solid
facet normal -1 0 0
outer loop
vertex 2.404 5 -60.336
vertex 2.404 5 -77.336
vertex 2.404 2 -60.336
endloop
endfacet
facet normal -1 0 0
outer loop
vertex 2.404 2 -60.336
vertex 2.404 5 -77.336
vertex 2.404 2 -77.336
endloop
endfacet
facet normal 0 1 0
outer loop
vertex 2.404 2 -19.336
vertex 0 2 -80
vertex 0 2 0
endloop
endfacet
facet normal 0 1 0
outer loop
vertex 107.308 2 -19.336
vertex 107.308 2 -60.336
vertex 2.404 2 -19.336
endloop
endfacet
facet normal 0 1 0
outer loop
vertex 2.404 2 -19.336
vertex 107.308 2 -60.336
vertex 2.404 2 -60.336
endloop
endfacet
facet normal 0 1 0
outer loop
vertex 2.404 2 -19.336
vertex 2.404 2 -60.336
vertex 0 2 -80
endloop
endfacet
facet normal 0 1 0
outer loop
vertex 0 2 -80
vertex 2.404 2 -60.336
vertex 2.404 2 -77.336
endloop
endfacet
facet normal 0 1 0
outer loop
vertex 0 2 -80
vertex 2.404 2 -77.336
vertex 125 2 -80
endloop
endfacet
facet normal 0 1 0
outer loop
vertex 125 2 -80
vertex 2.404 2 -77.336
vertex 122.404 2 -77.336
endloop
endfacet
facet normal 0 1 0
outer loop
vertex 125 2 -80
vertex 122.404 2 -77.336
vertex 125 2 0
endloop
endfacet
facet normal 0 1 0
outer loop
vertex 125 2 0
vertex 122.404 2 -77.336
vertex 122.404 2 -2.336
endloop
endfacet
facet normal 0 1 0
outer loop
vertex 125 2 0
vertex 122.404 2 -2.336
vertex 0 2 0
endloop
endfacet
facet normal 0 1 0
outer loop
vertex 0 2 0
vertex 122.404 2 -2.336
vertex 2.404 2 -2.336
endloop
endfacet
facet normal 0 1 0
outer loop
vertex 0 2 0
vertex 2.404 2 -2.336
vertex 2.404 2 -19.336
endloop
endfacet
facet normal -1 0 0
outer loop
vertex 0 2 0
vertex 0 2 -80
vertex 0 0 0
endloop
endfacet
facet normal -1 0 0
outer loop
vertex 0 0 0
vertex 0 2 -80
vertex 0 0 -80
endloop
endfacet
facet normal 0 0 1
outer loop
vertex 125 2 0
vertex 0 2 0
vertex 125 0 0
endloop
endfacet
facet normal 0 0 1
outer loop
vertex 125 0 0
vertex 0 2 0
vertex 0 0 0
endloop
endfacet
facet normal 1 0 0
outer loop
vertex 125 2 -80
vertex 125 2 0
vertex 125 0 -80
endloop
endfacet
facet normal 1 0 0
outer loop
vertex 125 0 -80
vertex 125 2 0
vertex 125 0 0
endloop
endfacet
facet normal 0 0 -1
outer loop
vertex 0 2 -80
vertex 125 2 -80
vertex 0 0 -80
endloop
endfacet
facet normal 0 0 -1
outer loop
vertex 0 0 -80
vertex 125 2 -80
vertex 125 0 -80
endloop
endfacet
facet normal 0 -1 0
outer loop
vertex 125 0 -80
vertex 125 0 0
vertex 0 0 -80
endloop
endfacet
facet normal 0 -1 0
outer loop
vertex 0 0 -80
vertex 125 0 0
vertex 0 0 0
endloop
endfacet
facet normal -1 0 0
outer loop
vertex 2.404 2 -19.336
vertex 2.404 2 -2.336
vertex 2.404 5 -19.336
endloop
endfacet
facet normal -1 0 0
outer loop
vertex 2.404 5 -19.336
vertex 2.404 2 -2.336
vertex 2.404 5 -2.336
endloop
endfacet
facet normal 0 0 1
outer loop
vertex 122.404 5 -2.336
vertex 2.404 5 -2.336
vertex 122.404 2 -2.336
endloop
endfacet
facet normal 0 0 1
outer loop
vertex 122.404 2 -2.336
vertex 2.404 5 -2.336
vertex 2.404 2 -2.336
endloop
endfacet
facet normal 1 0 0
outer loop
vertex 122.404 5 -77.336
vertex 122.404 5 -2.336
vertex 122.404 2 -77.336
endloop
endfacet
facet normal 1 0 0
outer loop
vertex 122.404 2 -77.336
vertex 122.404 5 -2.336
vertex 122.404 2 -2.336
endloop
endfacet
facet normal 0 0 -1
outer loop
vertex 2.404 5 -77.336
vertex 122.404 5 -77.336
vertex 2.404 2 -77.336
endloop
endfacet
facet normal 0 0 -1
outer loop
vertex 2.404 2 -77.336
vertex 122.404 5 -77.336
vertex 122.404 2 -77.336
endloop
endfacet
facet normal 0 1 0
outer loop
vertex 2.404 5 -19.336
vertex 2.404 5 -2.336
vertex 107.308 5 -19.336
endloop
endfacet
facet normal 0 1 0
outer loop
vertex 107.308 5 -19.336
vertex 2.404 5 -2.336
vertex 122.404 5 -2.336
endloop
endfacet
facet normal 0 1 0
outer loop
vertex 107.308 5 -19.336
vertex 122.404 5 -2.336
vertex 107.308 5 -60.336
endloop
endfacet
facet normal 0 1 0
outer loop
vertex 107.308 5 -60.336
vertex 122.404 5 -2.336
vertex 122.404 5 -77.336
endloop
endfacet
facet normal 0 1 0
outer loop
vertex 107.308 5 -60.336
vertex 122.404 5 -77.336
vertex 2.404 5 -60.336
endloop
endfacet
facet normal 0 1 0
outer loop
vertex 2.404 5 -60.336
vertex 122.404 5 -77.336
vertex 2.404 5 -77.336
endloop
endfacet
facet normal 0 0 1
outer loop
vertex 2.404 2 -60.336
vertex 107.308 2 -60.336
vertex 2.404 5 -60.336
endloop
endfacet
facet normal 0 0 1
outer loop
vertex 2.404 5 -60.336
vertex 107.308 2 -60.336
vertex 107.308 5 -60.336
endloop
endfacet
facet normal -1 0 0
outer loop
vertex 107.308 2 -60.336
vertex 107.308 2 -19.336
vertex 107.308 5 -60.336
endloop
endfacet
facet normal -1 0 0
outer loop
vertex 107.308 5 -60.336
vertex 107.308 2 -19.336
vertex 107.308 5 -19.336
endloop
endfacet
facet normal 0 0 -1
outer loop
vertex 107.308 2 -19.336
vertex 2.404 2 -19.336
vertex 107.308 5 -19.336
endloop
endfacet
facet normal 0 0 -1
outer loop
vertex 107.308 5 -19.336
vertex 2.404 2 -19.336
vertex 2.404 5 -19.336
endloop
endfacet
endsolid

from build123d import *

# Parameters (mm, degrees)
SKETCH1_W           = 125
SKETCH1_H           = 80
BOSS_EXTRUDE1_DEPTH = 2
SKETCH3_W           = 120
SKETCH3_H           = 75
BOSS_EXTRUDE2_DEPTH = 3
SKETCH4_W           = 104.904455421
SKETCH4_H           = 41
CUT_EXTRUDE1_DEPTH  = 3


with BuildPart() as part:
    # Sketch1 → Boss-Extrude1 (new body)
    with BuildSketch(Plane(origin=(0, 0, 0), x_dir=(1, 0, 0), z_dir=(0, 1, 0))):
        with Locations((62.5, 40)):
            Rectangle(SKETCH1_W, SKETCH1_H)
    extrude(amount=BOSS_EXTRUDE1_DEPTH)

    # Sketch3 → Boss-Extrude2 (add)
    with BuildSketch(Plane(origin=(0, 2, 0), x_dir=(1, 0, 0), z_dir=(0, 1, 0))):
        with Locations((62.403820475, 39.836034952)):
            Rectangle(SKETCH3_W, SKETCH3_H)
    extrude(amount=BOSS_EXTRUDE2_DEPTH)

    # Sketch4 → Cut-Extrude1 (cut)
    with BuildSketch(Plane(origin=(0, 5, 0), x_dir=(1, 0, 0), z_dir=(0, 1, 0))):
        with Locations((54.856048186, 39.836034952)):
            Rectangle(SKETCH4_W, SKETCH4_H)
    extrude(amount=-CUT_EXTRUDE1_DEPTH, mode=Mode.SUBTRACT)


solid = part.part
